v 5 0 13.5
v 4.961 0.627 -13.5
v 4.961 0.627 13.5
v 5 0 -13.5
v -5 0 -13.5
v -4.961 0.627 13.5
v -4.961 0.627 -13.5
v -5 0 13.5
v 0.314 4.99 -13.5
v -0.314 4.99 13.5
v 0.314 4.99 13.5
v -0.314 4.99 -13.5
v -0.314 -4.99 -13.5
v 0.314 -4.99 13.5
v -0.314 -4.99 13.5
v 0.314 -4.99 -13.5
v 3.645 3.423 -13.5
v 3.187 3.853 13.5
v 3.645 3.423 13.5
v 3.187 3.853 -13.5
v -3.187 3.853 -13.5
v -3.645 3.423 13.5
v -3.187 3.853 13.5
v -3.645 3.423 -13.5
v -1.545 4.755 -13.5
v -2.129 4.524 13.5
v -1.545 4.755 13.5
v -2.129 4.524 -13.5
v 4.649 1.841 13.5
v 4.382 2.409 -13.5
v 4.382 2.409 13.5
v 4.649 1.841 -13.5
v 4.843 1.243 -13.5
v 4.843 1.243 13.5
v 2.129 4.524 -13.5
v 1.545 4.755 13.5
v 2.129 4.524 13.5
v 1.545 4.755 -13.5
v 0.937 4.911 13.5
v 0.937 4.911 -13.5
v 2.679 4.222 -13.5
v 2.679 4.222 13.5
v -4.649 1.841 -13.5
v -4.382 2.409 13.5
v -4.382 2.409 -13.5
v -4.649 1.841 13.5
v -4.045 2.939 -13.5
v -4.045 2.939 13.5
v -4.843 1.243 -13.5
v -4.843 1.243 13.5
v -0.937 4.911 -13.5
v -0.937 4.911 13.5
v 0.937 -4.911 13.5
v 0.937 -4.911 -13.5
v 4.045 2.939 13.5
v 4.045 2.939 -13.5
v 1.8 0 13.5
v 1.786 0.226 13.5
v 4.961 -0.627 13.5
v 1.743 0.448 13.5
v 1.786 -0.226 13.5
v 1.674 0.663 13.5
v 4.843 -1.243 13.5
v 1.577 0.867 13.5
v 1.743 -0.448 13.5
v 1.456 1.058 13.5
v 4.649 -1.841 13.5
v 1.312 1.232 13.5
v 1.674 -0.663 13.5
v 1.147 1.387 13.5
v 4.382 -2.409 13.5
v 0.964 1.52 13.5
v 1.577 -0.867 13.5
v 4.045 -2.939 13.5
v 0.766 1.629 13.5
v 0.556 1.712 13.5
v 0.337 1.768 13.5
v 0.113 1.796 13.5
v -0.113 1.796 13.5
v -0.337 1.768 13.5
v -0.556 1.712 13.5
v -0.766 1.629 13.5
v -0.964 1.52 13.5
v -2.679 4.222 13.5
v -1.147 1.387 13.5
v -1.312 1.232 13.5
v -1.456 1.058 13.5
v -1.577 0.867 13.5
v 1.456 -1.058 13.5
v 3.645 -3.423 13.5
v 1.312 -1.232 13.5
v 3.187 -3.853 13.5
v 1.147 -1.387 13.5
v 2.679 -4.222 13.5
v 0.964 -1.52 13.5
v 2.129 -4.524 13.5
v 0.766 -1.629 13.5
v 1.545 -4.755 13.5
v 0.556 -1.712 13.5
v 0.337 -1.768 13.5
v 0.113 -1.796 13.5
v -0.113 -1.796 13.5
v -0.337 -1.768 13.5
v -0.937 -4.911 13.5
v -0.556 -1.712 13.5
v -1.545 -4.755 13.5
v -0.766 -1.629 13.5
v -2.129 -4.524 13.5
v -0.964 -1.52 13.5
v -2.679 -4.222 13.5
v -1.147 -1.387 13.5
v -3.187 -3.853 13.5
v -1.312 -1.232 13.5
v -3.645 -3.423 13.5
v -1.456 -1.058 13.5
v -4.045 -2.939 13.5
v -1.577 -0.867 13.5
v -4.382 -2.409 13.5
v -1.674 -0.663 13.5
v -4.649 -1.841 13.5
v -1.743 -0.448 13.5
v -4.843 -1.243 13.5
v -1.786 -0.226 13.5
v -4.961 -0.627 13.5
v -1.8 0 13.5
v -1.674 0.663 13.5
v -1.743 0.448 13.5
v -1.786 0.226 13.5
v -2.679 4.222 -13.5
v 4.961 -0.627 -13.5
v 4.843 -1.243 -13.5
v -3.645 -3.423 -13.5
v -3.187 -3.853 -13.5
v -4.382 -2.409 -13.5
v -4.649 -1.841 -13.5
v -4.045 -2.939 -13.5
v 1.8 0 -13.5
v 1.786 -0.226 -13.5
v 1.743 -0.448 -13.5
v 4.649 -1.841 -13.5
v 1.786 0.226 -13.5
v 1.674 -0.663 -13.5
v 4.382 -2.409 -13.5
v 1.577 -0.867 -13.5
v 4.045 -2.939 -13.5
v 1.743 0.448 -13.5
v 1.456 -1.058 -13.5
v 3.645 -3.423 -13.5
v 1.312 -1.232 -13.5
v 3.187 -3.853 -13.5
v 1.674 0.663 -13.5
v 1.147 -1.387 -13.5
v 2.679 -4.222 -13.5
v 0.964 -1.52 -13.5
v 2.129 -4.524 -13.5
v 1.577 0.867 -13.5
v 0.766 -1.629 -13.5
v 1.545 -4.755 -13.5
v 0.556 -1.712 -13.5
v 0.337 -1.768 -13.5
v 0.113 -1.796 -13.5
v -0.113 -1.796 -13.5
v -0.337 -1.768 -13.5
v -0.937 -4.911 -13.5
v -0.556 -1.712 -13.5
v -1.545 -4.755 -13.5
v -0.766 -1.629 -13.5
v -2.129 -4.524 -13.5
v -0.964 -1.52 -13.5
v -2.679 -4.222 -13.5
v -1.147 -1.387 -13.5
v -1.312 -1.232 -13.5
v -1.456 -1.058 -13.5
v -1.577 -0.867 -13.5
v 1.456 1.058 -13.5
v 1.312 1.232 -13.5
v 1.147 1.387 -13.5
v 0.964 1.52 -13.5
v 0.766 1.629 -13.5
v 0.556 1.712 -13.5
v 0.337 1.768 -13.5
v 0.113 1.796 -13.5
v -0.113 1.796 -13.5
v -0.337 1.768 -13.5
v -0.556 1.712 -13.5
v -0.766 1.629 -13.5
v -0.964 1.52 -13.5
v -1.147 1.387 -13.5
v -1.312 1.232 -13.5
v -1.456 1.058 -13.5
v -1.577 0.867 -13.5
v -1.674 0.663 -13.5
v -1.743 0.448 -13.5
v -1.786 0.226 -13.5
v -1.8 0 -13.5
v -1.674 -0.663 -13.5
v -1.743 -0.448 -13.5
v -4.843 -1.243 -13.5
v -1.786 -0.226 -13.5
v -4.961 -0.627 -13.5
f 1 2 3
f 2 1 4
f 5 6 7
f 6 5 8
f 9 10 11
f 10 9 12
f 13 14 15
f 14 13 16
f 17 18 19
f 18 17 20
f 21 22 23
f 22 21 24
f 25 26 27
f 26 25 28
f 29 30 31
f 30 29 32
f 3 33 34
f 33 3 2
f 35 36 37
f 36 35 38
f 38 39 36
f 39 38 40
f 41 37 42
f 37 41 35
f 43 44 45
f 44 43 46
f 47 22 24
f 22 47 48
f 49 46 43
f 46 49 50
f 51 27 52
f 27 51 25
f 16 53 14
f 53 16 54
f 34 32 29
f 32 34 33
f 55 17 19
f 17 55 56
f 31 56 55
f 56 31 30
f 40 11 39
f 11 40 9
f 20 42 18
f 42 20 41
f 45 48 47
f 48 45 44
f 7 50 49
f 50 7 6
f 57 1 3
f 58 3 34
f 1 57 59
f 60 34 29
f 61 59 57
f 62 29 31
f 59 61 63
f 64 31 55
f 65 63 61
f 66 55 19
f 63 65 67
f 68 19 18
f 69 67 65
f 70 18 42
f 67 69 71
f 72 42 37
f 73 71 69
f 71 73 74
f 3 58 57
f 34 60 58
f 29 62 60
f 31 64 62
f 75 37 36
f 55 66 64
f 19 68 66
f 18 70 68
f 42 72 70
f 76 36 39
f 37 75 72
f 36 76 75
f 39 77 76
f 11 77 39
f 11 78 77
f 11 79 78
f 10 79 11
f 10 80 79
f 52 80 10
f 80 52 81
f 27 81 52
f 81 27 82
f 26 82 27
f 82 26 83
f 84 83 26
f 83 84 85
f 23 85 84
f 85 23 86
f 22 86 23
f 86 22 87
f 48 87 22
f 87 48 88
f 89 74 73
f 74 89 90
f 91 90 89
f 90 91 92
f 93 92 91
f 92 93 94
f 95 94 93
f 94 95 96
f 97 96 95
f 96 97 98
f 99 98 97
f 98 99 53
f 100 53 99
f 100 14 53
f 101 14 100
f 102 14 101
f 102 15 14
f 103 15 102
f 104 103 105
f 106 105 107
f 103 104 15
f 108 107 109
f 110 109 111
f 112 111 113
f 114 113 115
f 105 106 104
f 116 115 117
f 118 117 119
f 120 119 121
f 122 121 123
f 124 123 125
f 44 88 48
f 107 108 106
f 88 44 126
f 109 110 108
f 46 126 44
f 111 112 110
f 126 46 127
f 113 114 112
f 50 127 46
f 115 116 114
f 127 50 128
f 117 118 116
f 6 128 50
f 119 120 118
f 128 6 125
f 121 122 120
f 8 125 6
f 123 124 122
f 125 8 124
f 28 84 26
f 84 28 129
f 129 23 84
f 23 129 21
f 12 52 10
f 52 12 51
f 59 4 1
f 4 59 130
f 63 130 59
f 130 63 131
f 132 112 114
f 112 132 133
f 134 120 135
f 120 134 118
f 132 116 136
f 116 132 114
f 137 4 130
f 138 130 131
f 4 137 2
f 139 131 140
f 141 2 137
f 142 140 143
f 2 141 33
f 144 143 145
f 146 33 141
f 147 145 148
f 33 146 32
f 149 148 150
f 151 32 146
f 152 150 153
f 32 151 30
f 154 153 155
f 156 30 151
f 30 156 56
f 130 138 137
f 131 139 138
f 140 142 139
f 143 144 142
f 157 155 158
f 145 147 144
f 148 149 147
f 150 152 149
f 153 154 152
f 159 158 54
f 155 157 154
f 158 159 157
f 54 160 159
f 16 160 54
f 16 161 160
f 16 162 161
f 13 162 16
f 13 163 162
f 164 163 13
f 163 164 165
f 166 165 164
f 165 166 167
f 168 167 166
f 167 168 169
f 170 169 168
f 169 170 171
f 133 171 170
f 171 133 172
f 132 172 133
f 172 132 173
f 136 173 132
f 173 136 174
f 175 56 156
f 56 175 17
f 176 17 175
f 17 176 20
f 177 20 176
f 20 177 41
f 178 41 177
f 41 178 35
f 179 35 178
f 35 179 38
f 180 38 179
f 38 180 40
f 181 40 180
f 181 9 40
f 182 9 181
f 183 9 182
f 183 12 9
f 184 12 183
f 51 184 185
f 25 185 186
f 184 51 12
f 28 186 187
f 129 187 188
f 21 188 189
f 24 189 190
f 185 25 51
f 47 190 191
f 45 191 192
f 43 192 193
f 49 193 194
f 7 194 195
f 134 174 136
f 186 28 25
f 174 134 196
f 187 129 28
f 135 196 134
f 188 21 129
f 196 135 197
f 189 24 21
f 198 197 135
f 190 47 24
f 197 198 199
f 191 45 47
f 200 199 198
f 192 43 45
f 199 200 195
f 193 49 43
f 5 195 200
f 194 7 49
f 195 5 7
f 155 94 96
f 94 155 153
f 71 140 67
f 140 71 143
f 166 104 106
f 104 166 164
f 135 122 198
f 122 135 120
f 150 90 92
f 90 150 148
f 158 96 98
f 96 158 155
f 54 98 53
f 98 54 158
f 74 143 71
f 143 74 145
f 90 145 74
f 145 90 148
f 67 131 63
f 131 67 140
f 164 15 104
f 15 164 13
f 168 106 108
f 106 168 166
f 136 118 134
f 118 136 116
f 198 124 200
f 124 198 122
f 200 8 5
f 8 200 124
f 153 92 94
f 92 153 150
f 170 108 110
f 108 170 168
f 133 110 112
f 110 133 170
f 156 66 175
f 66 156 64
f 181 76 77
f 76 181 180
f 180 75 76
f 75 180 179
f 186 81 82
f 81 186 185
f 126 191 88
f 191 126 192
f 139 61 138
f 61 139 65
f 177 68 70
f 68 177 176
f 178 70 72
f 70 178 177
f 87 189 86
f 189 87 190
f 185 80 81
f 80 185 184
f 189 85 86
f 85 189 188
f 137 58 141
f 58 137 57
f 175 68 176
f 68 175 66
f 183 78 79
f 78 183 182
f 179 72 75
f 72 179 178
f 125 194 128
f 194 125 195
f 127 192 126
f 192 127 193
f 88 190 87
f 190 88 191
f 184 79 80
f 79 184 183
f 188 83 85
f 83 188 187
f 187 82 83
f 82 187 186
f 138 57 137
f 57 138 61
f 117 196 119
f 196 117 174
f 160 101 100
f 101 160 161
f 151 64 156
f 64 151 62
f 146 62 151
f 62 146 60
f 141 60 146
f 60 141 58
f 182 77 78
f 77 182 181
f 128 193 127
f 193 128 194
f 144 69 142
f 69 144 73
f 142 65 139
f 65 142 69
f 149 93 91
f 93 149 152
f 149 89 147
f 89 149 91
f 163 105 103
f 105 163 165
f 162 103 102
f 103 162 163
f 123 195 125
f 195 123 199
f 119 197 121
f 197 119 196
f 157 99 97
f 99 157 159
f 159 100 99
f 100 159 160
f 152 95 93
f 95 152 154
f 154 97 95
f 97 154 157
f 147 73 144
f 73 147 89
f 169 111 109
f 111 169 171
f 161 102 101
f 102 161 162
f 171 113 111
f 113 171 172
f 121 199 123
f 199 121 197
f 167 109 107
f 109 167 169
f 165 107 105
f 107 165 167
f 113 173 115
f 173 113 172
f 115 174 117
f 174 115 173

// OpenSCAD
$fn = 50;


difference() {
	union() {
		translate(v = [0, 0, -13.5000000000]) {
			cylinder(h = 27, r = 5.0000000000);
		}
	}
	union() {
		translate(v = [0, 0, -100.0000000000]) {
			cylinder(h = 200, r = 1.8000000000);
		}
	}
}
